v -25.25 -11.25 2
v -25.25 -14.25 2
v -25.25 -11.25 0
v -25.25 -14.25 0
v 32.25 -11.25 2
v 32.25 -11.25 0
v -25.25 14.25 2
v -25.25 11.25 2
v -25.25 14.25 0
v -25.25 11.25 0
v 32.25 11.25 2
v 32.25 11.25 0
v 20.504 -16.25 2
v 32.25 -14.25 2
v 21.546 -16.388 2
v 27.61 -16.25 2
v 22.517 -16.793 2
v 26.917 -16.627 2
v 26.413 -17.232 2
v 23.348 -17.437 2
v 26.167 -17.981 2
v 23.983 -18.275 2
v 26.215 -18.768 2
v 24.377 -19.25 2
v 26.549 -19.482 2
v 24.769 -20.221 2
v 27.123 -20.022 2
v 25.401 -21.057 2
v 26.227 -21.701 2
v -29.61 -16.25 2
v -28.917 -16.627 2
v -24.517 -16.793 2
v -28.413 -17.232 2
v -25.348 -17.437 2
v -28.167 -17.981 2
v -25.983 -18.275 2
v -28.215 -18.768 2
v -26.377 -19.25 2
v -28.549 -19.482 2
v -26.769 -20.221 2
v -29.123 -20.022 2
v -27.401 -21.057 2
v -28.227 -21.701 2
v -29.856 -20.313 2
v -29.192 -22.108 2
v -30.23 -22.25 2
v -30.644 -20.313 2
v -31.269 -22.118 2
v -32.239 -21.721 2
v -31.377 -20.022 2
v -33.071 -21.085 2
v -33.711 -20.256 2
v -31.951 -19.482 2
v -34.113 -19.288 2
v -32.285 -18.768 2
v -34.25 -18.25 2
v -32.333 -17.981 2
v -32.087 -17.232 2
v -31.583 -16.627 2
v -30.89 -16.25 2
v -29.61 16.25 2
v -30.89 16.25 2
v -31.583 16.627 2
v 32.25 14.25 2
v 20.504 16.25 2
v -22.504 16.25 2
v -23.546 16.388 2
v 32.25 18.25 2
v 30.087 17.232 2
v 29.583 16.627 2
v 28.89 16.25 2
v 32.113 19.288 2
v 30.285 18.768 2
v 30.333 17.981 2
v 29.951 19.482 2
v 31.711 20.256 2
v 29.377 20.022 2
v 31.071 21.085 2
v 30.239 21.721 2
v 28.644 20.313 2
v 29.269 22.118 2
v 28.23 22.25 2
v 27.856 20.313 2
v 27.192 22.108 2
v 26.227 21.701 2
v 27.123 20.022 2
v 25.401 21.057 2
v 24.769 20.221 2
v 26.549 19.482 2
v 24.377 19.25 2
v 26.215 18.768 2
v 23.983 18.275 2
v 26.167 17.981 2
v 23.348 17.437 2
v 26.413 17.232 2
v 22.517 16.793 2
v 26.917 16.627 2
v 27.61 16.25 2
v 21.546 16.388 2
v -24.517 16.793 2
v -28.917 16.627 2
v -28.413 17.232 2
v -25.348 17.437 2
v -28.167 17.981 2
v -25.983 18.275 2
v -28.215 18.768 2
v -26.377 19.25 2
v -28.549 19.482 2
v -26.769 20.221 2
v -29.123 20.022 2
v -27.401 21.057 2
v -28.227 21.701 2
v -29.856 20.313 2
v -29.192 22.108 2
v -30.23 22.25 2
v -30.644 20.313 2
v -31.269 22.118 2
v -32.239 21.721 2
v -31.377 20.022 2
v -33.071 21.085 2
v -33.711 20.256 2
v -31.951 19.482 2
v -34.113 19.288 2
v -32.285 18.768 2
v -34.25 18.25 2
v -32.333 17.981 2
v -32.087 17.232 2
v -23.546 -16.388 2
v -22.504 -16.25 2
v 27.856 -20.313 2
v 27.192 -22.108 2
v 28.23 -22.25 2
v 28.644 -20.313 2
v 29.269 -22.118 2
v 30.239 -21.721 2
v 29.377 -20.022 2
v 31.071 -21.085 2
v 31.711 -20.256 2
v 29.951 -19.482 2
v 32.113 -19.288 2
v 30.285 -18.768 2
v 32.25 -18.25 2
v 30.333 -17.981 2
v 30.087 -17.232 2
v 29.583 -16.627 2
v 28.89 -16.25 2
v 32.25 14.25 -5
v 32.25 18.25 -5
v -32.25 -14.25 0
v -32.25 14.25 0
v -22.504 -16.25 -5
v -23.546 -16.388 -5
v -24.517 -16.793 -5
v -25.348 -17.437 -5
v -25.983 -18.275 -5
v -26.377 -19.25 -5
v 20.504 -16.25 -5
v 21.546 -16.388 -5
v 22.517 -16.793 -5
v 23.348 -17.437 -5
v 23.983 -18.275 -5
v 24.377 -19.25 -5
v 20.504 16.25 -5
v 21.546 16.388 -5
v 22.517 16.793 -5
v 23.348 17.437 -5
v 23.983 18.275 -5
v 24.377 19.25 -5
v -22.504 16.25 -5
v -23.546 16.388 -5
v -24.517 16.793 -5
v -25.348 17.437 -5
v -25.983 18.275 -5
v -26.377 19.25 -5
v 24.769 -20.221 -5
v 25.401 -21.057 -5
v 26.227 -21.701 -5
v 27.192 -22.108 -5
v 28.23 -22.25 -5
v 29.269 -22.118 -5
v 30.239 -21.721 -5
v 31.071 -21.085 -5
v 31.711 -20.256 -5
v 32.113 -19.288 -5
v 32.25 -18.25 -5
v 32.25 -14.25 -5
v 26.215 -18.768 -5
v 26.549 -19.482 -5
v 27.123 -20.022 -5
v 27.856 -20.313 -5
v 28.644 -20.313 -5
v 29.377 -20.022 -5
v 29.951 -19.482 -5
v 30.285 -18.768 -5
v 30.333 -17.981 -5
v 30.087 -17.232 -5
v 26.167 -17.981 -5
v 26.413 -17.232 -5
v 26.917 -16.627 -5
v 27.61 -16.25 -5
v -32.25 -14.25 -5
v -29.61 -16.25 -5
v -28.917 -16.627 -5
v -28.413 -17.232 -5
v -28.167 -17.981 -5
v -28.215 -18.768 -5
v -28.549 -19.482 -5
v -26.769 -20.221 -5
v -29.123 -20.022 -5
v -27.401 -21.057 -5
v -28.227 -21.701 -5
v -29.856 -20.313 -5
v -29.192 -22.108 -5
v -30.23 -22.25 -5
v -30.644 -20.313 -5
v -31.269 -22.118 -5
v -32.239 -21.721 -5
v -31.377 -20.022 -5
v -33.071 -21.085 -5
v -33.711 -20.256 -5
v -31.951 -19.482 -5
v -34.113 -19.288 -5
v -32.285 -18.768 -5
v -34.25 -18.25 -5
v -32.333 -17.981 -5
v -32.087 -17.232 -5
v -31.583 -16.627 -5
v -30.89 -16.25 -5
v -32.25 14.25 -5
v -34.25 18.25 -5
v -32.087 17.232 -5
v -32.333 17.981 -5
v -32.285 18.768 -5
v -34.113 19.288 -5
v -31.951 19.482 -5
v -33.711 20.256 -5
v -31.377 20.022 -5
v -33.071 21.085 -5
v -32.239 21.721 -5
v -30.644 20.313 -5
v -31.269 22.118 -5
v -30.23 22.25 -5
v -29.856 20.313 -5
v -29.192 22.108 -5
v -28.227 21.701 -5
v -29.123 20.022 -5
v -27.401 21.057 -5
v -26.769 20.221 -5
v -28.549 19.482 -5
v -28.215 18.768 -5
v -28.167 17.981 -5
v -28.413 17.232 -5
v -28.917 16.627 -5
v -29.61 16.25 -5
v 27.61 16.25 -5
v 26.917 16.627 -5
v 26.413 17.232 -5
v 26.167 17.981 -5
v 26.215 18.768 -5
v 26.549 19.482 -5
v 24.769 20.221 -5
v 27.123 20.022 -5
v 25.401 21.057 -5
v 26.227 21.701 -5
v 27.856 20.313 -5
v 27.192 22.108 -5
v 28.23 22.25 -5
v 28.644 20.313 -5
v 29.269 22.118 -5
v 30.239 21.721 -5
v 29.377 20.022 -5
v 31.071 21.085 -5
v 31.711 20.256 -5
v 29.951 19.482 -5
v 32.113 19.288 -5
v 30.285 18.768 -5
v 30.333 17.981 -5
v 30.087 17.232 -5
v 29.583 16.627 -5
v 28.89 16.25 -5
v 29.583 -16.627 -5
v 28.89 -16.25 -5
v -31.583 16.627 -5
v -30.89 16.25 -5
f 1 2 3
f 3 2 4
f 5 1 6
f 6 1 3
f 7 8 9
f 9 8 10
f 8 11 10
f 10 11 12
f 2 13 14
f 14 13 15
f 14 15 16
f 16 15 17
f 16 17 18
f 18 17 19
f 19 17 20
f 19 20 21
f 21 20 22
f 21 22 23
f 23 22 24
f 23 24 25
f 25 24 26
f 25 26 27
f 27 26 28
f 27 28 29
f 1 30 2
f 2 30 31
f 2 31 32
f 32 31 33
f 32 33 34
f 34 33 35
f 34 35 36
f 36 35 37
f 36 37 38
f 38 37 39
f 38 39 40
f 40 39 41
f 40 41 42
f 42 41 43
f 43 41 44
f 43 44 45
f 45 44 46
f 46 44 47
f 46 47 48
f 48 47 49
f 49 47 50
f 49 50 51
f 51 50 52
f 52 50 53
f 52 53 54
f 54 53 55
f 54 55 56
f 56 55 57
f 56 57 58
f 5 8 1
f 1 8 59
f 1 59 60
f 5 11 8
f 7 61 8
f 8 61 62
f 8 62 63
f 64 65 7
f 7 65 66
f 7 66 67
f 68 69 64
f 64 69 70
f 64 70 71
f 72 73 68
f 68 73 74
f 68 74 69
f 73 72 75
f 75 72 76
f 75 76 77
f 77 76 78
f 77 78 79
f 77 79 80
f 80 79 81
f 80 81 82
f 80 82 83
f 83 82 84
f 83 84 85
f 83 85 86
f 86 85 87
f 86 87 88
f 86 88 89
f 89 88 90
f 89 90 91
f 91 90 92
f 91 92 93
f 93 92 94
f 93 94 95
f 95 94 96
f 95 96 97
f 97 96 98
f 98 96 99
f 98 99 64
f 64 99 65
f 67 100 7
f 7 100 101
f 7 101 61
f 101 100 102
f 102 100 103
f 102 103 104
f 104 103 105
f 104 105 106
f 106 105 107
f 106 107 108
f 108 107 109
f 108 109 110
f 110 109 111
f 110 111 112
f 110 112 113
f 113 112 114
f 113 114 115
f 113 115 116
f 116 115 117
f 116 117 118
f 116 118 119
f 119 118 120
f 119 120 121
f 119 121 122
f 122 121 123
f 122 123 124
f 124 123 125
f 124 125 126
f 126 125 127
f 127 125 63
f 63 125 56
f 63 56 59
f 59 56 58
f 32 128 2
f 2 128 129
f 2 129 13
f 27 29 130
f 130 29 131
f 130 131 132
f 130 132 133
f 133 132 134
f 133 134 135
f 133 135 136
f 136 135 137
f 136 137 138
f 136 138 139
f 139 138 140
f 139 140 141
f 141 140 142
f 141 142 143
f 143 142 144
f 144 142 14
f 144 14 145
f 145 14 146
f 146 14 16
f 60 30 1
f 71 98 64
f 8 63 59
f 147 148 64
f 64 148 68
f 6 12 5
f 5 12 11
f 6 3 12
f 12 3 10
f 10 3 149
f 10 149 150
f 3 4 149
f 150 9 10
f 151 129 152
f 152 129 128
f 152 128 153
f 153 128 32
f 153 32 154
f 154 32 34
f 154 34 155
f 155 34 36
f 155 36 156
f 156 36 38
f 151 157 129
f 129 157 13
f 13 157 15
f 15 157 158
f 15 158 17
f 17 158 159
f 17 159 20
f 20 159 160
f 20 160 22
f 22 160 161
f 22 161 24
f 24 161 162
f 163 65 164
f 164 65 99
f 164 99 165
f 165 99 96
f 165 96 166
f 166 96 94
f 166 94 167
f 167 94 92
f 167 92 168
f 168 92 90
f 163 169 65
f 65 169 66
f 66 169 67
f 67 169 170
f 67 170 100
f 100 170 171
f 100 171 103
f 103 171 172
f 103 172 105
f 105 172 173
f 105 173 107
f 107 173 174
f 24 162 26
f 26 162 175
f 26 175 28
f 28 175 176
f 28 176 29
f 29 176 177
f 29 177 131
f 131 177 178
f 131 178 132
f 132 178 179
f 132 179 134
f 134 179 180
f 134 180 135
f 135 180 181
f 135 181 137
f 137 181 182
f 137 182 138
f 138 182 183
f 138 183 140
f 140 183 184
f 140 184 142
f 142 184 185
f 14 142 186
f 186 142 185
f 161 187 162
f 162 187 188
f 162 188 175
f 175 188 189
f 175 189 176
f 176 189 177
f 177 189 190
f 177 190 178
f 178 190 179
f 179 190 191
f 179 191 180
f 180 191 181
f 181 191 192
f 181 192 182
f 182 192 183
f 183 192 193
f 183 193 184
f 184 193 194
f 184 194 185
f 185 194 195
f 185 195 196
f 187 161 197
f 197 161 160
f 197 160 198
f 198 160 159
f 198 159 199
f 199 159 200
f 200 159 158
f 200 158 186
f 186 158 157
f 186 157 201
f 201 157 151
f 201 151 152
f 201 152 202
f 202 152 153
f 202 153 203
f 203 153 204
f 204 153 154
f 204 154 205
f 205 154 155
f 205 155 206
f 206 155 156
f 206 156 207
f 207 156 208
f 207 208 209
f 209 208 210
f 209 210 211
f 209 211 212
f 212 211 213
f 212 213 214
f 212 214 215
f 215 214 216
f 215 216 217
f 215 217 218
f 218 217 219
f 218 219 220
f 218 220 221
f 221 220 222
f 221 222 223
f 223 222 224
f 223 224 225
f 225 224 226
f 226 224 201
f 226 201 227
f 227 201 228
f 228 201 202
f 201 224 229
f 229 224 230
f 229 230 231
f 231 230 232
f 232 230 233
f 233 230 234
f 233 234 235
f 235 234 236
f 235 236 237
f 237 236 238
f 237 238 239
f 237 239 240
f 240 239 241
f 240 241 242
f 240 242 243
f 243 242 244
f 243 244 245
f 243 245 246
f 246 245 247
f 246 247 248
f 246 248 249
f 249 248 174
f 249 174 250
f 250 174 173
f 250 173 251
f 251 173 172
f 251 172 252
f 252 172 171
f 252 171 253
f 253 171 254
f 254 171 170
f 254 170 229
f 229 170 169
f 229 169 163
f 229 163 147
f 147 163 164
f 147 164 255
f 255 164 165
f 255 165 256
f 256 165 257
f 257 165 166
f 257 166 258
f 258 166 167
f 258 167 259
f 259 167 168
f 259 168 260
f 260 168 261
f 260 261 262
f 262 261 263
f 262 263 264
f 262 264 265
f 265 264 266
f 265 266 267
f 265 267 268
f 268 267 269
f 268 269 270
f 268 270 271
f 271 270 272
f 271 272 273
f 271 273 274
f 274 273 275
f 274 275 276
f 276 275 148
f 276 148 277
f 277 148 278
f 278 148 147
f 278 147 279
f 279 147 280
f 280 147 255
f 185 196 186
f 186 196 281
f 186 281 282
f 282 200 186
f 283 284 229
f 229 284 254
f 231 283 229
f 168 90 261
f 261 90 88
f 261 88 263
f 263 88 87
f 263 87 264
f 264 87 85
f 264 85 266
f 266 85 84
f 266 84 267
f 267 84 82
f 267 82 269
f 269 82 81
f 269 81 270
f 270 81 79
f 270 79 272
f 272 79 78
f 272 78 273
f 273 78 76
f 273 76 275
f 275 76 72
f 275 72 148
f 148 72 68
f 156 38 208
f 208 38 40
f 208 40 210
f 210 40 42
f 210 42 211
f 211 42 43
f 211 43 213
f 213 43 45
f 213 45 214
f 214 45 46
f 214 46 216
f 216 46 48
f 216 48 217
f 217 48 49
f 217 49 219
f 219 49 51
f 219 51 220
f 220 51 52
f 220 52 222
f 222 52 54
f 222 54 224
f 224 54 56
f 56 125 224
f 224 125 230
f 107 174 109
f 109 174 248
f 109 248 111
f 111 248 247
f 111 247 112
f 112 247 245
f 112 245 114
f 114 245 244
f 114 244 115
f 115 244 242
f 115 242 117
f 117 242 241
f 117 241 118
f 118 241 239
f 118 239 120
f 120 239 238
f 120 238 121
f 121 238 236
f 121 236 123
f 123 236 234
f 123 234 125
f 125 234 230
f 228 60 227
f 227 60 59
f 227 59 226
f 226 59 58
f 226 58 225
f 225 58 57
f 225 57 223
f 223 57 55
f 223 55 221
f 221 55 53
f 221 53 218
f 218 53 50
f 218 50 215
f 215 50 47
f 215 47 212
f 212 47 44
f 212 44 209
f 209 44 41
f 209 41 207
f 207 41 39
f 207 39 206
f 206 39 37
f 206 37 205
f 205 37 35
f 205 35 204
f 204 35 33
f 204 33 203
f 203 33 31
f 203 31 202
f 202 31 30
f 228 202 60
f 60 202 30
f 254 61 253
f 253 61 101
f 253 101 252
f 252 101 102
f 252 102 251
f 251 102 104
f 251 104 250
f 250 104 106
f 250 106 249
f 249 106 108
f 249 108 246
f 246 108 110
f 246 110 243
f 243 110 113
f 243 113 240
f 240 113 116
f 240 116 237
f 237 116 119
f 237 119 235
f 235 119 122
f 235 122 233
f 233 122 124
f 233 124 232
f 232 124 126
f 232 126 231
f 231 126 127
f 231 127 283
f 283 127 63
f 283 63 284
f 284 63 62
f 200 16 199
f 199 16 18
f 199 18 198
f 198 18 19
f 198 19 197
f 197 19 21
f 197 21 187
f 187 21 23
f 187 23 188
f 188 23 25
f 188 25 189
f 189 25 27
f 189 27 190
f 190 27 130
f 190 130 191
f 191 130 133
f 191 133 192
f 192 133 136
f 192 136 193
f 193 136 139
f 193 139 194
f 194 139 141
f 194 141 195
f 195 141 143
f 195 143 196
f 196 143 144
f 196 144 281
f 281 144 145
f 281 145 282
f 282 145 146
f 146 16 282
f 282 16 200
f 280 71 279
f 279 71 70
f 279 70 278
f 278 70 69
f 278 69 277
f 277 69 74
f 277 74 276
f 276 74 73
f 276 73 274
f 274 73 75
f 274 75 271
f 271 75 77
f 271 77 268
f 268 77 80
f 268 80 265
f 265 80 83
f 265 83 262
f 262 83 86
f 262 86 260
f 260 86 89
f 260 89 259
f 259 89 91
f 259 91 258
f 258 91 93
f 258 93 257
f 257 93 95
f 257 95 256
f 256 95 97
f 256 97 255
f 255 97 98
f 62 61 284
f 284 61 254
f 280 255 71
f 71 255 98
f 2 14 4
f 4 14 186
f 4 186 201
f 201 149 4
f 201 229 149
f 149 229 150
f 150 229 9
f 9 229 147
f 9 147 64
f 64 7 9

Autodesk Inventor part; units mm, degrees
ref_plane "YZ Plane" through (0, 0, 0) normal (1, 0, 0) x (0, 1, 0)
ref_plane "XZ Plane" through (0, 0, 0) normal (0, 1, 0) x (-1, 0, 0)
ref_plane "XY Plane" through (0, 0, 0) normal (0, 0, 1) x (1, 0, 0)
sketch "Boceto1" plane through (0, 0, 0) normal (0, 0, 1) x (1, 0, 0)
  line L0 (-32.25, -14.25) -> (-32.25, 14.25) projected
  line L1 (-32.25, 14.25) -> (32.25, 14.25) projected
  line L2 (32.25, 14.25) -> (32.25, -14.25) projected
  line L3 (32.25, -14.25) -> (-32.25, -14.25) projected
  line L4 (34.25, 16.25) -> (-34.25, 16.25)
  line L5 (-34.25, 16.25) -> (-34.25, -16.25)
  line L6 (-34.25, -16.25) -> (34.25, -16.25)
  line L7 (34.25, -16.25) -> (34.25, 16.25)
  line L8 (32.25, -14.25) -> (32.25, -16.25)
  line L9 (32.25, 14.25) -> (32.25, 16.25)
  point P0 (0, 0)
  dimension "d0" = 2
extrude "Extrusión1" add sketch "Boceto1" along normal blind 2 and the other way blind 5 contours L3 L8 L6 L5 L4 L9 L1 L0 | L0 L1 L2 L3
shell "Vaciado1" thickness 2 removed faces 2 at (32.25, 5.4167, -0.3333) at (-12.0833, 5.4167, -5)
sketch "Boceto2" plane through (0, 0, -5) normal (0, 0, -1) x (-1, 0, 0)
  line L0 (-32.25, 14.25) -> (32.25, 14.25) projected
  line L1 (32.25, 14.25) -> (32.25, -14.25) projected
  line L2 (32.25, -14.25) -> (-32.25, -14.25) projected
  line L3 (-32.25, -14.25) -> (-32.25, -16.25) projected
  line L4 (-32.25, -16.25) -> (34.25, -16.25) projected
  line L5 (34.25, -16.25) -> (34.25, 16.25) projected
  line L6 (34.25, 16.25) -> (-32.25, 16.25) projected
  line L7 (-32.25, 16.25) -> (-32.25, 14.25) projected
  line L8 (-32.25, 16.25) -> (-24.25, 16.25)
  line L9 (-24.25, 16.25) -> (-24.25, 22.25)
  line L10 (-24.25, 22.25) -> (-32.25, 22.25)
  line L11 (-32.25, 22.25) -> (-32.25, 16.25)
  line L12 (-24.25, 22.25) -> (-32.25, 14.25)
  circle A0 centre (-28.25, 18.25) radius 2.1
  point P0 (0, 0)
  point P1 (-30.25, 16.25)
  point P2 (-29.7349, 16.7651)
  point P3 (-27.6097, 16.25)
  point P4 (-28.8903, 16.25)
  dimension "d6" = 8
  dimension "d7" = 6
  dimension "d8" = 4.2
extrude "Extrusión2" add sketch "Boceto2" against normal up to surface (7 mm away) contours L11 L10 L12 A0 L6 | L12 A0 L6 | L9 L6 A0 L12 picked at (-29.8223, 16.5215)
mirror "Simetría1" about plane through (0, 0, 0) normal (0, 1, 0) of "Extrusión2"
ref_plane "Plano de trabajo1" through (-1, -14.25, 0) normal (1, 0, 0) x (0, 0, -1)
mirror "Simetría2" about plane through (-1, -14.25, 0) normal (1, 0, 0) of "Extrusión2", "Simetría1"
fillet "Empalme1" radius 4 12 edges at (-26.25, 22.25, -1.5) (-34.25, 22.25, -1.5) (-34.25, -22.25, -1.5) (-26.25, -22.25, -1.5) (24.25, 22.25, -1.5) (32.25, 22.25, -1.5) (32.25, -22.25, -1.5) (24.25, -22.25, -1.5) (-26.25, 16.25, -1.5) (24.25, 16.25, -1.5) (24.25, -16.25, -1.5) (-26.25, -16.25, -1.5)
sketch "Boceto3" plane through (32.25, -14.25, 0) normal (0, 0, -1) x (-1, 0, 0)
  line L0 (64.5, 0) -> (64.5, 28.5) projected
  line L1 (64.5, 28.5) -> (0, 28.5) projected
  line L2 (0, 28.5) -> (0, 0) projected
  line L3 (0, 0) -> (64.5, 0) projected
  line L4 (64.5, 0) -> (0, 0) projected
  line L5 (0, 28.5) -> (57.5, 28.5)
  line L6 (57.5, 28.5) -> (57.5, 0)
  line L7 (57.5, 0) -> (0, 0)
  line L8 (0, 0) -> (0, 28.5)
  line L9 (54.5, 3) -> (54.5, 25.5)
  line L10 (57.5, 25.5) -> (0, 25.5)
  line L11 (3, 28.5) -> (3, 0)
  line L12 (0, 3) -> (57.5, 3)
  line L13 (2.55, 28.5) -> (2.55, 0)
  point P0 (32.25, 14.25)
  point P1 (57.5, 0)
  point P2 (2.55, 3)
  point P3 (2.55, 0)
  point P4 (2.55, 28.5)
  point P5 (2.55, 25.5)
  dimension "d12" = 57.5
  dimension "d13" = 3
  dimension "d16" = 0.45
extrude "Extrusión3" cut sketch "Boceto3" against normal blind 10 contours L3 L11 L12 L6 | L6 L10 L11 L1 | L3 L13 L12 L11 | L11 L10 L13 L1 | L3 L2 L12 L13 | L13 L10 L2 L1
properties part number "Soporte_ESP32S3"
